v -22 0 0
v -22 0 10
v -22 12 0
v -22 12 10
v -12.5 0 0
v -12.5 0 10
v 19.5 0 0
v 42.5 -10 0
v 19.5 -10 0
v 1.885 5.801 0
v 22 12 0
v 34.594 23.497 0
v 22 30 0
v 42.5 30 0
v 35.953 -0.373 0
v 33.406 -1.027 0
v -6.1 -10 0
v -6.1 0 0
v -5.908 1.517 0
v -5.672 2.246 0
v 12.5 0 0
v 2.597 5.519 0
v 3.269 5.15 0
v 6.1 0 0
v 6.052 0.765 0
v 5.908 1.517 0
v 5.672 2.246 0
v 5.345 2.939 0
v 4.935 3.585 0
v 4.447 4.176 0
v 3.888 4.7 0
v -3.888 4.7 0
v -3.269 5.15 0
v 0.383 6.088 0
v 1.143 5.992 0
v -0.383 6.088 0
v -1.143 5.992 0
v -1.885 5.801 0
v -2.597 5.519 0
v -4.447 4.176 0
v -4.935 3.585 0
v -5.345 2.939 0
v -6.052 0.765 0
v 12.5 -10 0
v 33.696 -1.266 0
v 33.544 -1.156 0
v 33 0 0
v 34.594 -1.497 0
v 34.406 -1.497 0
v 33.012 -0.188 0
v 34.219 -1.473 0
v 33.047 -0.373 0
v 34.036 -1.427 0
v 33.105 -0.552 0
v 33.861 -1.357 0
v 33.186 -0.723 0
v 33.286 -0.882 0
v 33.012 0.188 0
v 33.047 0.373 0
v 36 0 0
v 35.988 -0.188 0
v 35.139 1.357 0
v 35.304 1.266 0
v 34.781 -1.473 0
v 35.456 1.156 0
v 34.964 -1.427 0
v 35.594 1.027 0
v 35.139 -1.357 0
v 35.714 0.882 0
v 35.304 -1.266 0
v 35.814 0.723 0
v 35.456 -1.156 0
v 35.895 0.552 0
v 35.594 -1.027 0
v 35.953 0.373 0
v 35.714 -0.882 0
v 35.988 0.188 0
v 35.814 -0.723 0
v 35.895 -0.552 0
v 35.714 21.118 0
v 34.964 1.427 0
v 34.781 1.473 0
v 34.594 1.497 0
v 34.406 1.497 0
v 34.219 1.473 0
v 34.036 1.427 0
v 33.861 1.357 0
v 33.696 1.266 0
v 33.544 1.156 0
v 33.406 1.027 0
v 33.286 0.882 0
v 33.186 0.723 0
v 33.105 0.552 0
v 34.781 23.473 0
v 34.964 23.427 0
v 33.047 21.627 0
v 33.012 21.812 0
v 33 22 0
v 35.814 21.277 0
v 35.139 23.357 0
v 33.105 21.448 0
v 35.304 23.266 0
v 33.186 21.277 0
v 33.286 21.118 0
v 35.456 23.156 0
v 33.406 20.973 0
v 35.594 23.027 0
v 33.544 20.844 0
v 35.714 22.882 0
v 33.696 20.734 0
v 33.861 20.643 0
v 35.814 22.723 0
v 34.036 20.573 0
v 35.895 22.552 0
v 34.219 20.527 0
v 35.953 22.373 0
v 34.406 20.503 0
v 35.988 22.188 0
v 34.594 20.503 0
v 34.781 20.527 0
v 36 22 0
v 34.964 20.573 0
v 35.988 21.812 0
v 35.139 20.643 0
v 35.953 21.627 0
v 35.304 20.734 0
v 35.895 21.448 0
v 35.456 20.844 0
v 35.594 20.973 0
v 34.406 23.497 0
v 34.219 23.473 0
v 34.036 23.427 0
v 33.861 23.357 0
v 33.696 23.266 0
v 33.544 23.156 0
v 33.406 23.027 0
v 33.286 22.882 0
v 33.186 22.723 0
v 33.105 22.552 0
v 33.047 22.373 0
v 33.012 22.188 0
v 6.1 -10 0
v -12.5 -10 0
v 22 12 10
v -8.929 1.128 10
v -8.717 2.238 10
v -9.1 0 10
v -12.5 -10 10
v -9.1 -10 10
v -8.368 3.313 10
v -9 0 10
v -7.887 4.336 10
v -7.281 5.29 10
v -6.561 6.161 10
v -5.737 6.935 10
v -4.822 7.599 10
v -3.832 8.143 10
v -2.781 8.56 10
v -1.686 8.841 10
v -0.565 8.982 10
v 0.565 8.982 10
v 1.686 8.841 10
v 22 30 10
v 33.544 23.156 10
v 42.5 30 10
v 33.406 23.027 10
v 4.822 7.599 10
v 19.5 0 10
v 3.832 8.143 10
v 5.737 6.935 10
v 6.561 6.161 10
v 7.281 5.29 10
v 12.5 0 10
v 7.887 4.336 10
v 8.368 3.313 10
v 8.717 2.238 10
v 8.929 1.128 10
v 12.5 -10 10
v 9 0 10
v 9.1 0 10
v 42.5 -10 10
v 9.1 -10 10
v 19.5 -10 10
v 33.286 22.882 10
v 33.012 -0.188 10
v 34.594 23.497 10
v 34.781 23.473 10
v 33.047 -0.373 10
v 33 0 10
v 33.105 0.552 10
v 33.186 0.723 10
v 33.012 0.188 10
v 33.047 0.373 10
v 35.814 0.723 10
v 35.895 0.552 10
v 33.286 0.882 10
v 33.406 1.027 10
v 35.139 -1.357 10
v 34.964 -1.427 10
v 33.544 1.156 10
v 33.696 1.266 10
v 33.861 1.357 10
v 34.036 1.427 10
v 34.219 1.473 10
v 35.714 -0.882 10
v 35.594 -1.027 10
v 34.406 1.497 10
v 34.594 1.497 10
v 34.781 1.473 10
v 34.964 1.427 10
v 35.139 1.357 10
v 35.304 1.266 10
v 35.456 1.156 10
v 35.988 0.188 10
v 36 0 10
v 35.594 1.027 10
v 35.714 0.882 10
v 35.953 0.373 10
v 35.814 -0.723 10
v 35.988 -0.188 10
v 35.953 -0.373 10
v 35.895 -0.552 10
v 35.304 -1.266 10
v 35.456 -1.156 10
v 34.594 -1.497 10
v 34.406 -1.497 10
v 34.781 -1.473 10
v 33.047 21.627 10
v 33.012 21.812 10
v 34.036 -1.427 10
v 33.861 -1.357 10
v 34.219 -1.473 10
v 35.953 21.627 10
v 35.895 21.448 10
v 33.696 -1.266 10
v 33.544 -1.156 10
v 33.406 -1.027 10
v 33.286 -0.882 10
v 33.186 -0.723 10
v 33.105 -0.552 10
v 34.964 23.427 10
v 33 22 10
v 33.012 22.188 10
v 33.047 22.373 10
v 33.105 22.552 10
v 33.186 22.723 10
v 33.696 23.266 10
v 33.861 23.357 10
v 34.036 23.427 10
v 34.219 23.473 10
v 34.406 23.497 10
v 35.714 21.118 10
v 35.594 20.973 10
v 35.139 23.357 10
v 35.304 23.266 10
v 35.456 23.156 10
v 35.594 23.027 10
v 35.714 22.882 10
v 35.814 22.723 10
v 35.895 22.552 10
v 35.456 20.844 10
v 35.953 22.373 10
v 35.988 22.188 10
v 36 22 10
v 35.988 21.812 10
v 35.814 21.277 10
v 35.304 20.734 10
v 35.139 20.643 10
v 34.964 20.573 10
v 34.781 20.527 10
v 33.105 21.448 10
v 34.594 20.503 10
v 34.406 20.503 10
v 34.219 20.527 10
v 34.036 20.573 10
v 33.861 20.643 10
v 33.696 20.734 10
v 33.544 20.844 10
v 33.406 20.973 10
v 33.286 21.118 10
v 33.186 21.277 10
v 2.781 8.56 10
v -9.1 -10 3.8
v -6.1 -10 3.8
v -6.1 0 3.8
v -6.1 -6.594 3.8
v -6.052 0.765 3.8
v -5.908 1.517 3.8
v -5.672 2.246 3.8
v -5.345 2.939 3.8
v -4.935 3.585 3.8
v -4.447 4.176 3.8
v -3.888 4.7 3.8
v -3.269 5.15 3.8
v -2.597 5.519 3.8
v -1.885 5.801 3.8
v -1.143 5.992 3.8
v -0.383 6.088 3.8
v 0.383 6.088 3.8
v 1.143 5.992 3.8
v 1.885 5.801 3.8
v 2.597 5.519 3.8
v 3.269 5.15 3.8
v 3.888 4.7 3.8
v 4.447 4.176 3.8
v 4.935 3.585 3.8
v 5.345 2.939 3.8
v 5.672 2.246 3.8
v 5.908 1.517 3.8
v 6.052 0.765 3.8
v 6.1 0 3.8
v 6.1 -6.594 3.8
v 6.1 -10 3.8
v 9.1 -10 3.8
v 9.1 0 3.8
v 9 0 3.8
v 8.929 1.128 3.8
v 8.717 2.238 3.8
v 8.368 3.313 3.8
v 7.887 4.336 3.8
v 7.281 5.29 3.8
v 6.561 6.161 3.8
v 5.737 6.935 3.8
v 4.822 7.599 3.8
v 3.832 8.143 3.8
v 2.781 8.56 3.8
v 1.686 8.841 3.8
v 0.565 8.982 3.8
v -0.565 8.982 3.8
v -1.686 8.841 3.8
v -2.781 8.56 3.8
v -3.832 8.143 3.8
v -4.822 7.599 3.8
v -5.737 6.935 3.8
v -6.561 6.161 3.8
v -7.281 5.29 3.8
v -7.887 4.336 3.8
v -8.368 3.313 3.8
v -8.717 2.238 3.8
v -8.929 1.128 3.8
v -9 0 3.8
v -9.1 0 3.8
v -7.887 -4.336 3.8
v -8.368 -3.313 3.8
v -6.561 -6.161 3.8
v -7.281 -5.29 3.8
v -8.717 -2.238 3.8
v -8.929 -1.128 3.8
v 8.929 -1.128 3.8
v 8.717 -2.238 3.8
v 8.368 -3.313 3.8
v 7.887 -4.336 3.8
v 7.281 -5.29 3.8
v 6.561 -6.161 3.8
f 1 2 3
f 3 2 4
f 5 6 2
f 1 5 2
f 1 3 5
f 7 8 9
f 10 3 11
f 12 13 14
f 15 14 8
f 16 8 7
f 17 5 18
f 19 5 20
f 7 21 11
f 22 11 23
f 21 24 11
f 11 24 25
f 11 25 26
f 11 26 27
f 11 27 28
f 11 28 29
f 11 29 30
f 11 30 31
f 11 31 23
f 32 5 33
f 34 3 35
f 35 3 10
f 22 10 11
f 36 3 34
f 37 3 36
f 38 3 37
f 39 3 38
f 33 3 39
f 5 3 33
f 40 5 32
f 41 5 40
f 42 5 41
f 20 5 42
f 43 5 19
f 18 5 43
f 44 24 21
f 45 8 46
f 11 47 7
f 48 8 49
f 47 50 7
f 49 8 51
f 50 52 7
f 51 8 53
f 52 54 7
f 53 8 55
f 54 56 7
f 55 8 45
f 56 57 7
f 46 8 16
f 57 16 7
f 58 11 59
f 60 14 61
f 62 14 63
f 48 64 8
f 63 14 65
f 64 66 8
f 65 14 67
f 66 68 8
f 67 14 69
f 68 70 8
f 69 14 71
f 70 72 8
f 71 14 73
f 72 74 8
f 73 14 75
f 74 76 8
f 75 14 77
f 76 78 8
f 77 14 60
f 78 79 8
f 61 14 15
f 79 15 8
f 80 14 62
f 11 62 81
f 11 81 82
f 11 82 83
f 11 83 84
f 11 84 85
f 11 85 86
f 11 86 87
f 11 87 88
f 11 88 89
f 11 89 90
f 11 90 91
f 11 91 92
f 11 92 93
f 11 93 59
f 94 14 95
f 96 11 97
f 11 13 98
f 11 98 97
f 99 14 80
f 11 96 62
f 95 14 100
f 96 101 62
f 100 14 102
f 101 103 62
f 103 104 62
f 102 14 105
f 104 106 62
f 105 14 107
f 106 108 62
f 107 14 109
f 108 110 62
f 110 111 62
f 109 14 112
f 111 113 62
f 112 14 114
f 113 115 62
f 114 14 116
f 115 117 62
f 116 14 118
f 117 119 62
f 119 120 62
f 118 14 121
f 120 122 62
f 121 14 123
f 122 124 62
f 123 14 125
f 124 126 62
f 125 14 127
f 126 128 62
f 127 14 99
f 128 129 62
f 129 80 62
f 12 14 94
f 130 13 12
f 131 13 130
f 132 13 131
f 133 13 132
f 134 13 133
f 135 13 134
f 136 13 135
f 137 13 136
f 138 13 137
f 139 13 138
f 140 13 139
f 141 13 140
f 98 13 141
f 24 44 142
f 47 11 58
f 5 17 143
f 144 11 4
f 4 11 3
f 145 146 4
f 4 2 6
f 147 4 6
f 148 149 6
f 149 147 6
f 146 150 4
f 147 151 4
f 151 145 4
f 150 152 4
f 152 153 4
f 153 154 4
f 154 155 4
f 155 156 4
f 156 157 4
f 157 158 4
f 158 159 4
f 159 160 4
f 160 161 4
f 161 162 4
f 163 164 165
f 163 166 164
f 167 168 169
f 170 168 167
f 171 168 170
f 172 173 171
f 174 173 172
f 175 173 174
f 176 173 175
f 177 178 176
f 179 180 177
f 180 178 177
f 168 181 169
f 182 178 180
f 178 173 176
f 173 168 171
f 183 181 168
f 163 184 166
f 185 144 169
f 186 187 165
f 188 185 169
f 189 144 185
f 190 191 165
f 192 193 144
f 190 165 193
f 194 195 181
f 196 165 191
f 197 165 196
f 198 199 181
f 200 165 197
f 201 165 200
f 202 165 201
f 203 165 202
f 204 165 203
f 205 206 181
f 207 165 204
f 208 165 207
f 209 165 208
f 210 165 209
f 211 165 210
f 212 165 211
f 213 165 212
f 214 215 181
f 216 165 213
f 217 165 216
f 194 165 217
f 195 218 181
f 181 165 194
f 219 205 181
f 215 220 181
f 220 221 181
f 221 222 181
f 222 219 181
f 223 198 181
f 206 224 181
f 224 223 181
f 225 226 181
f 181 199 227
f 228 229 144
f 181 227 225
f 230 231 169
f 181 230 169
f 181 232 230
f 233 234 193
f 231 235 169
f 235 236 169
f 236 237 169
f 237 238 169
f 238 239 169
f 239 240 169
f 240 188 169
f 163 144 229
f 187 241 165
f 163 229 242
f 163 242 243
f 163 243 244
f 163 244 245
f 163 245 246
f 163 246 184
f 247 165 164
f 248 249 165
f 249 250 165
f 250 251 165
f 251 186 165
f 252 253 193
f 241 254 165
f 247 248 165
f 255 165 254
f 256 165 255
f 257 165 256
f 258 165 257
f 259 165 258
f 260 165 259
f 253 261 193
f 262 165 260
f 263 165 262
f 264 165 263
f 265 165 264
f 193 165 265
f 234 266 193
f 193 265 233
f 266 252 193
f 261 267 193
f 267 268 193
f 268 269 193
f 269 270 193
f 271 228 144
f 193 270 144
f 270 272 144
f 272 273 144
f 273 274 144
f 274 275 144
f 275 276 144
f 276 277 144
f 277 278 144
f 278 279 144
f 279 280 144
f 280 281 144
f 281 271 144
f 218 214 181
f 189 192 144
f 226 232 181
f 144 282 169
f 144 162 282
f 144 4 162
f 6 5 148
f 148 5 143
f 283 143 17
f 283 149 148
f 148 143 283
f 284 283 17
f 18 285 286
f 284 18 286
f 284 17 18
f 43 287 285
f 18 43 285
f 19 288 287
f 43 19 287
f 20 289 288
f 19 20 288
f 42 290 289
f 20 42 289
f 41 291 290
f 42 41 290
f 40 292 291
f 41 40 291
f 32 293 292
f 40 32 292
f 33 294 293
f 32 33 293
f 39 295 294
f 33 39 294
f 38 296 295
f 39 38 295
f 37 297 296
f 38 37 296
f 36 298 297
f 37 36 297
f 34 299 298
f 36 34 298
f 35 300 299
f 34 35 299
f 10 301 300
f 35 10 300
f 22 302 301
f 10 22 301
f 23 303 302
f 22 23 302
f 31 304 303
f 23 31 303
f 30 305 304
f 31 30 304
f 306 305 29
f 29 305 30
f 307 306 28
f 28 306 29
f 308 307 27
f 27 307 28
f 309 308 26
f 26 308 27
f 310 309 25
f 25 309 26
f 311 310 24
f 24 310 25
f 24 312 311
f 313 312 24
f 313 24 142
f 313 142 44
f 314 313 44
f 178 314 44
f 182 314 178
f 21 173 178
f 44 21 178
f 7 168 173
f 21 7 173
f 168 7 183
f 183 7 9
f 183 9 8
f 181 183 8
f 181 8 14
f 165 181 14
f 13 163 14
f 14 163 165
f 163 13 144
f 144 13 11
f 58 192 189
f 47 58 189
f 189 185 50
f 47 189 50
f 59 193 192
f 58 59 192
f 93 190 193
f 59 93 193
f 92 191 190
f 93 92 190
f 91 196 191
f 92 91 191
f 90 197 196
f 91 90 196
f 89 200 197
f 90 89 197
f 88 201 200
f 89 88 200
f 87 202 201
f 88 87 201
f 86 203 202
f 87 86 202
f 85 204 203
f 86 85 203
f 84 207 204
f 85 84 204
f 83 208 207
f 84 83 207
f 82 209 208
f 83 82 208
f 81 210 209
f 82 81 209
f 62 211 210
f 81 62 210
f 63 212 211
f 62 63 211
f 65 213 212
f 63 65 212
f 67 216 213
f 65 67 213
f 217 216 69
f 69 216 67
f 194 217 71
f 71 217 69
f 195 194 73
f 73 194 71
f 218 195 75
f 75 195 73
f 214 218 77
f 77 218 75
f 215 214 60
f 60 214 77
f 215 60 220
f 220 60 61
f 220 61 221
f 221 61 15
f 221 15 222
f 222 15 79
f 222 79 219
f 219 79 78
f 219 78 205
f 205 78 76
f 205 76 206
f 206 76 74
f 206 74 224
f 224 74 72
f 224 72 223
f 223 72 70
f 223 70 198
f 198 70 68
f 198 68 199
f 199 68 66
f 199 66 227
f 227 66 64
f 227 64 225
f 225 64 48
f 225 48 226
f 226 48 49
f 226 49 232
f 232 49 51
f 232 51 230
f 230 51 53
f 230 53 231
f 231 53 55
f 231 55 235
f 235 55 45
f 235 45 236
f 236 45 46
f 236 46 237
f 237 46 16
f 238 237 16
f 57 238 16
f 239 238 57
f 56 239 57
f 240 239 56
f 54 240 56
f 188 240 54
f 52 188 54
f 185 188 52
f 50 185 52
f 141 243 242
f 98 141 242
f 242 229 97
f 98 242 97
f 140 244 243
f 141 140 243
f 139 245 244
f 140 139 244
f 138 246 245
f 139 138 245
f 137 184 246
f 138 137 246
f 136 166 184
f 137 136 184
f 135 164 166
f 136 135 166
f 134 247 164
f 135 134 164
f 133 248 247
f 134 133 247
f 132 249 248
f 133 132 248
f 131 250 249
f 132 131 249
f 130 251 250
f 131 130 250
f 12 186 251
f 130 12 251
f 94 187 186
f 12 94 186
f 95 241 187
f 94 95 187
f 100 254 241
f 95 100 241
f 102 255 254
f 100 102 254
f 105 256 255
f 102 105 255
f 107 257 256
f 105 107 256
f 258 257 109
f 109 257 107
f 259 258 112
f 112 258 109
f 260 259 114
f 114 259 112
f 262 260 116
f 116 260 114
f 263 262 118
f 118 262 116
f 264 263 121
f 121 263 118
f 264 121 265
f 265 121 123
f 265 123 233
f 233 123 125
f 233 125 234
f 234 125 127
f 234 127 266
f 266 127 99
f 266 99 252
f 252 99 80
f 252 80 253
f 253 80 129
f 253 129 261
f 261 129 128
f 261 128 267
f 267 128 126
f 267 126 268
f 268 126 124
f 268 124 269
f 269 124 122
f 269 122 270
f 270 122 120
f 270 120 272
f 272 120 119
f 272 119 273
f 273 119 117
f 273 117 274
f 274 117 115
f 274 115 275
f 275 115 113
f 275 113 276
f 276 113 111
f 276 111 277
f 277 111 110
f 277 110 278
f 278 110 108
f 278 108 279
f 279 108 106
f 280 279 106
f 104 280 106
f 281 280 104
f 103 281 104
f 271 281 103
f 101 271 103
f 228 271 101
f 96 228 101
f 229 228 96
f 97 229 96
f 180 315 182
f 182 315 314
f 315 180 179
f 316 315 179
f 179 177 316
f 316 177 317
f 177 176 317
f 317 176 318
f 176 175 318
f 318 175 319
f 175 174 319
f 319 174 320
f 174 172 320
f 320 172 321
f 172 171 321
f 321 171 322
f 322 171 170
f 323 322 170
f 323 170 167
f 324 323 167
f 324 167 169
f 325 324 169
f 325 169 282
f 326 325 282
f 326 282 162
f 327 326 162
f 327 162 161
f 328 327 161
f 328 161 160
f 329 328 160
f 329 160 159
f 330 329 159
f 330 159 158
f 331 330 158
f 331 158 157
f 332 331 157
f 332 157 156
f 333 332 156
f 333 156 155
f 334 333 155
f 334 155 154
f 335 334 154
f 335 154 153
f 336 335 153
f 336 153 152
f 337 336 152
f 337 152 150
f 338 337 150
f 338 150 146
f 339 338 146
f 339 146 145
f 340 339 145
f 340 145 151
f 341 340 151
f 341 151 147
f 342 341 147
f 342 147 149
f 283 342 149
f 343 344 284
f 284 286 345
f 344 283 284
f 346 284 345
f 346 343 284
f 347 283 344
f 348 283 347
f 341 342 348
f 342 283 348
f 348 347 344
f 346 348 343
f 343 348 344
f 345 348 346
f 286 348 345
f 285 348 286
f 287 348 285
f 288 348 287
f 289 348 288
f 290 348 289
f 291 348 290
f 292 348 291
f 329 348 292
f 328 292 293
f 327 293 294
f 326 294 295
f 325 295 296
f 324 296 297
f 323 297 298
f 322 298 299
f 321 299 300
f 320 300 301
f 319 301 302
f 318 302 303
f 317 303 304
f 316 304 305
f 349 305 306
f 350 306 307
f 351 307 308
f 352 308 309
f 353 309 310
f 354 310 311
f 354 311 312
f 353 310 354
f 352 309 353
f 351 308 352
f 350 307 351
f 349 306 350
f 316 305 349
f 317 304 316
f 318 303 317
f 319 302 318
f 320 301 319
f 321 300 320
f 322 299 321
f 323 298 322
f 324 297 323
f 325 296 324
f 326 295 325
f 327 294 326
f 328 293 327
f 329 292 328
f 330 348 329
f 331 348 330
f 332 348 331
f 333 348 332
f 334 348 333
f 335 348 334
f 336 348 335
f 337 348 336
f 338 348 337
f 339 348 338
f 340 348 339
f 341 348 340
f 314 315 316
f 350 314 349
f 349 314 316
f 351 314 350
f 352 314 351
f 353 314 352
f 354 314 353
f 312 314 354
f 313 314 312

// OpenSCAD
difference(){
	translate( [-22,-10,0] )
		cube(size=[64.5,40,10]);

	translate([0,0,3.8])
		cylinder(h=10, r=9, $fn=50);

	translate([0,0,-1])
		cylinder(h=20,r=6.1, $fn=50);

	translate([0,-10,-1])
		cube([12.2,20,25], center=true);

	translate([0,-10,8.8])
		cube([18.2,20,10], center=true);

	translate([34.5,0,-1])
		cylinder(h=20,r=1.5, $fn=50);

	translate([34.5,22,-1])
		cylinder(h=20,r=1.5, $fn=50);

	translate([-23,12,-5])
		cube([45,22,20], center=false);

	translate([-29.5,-20,-5])
		cube([17,20,20], center=false);

	translate([12.5,-20,-5])
		cube([7,20,20], center=false);
}
